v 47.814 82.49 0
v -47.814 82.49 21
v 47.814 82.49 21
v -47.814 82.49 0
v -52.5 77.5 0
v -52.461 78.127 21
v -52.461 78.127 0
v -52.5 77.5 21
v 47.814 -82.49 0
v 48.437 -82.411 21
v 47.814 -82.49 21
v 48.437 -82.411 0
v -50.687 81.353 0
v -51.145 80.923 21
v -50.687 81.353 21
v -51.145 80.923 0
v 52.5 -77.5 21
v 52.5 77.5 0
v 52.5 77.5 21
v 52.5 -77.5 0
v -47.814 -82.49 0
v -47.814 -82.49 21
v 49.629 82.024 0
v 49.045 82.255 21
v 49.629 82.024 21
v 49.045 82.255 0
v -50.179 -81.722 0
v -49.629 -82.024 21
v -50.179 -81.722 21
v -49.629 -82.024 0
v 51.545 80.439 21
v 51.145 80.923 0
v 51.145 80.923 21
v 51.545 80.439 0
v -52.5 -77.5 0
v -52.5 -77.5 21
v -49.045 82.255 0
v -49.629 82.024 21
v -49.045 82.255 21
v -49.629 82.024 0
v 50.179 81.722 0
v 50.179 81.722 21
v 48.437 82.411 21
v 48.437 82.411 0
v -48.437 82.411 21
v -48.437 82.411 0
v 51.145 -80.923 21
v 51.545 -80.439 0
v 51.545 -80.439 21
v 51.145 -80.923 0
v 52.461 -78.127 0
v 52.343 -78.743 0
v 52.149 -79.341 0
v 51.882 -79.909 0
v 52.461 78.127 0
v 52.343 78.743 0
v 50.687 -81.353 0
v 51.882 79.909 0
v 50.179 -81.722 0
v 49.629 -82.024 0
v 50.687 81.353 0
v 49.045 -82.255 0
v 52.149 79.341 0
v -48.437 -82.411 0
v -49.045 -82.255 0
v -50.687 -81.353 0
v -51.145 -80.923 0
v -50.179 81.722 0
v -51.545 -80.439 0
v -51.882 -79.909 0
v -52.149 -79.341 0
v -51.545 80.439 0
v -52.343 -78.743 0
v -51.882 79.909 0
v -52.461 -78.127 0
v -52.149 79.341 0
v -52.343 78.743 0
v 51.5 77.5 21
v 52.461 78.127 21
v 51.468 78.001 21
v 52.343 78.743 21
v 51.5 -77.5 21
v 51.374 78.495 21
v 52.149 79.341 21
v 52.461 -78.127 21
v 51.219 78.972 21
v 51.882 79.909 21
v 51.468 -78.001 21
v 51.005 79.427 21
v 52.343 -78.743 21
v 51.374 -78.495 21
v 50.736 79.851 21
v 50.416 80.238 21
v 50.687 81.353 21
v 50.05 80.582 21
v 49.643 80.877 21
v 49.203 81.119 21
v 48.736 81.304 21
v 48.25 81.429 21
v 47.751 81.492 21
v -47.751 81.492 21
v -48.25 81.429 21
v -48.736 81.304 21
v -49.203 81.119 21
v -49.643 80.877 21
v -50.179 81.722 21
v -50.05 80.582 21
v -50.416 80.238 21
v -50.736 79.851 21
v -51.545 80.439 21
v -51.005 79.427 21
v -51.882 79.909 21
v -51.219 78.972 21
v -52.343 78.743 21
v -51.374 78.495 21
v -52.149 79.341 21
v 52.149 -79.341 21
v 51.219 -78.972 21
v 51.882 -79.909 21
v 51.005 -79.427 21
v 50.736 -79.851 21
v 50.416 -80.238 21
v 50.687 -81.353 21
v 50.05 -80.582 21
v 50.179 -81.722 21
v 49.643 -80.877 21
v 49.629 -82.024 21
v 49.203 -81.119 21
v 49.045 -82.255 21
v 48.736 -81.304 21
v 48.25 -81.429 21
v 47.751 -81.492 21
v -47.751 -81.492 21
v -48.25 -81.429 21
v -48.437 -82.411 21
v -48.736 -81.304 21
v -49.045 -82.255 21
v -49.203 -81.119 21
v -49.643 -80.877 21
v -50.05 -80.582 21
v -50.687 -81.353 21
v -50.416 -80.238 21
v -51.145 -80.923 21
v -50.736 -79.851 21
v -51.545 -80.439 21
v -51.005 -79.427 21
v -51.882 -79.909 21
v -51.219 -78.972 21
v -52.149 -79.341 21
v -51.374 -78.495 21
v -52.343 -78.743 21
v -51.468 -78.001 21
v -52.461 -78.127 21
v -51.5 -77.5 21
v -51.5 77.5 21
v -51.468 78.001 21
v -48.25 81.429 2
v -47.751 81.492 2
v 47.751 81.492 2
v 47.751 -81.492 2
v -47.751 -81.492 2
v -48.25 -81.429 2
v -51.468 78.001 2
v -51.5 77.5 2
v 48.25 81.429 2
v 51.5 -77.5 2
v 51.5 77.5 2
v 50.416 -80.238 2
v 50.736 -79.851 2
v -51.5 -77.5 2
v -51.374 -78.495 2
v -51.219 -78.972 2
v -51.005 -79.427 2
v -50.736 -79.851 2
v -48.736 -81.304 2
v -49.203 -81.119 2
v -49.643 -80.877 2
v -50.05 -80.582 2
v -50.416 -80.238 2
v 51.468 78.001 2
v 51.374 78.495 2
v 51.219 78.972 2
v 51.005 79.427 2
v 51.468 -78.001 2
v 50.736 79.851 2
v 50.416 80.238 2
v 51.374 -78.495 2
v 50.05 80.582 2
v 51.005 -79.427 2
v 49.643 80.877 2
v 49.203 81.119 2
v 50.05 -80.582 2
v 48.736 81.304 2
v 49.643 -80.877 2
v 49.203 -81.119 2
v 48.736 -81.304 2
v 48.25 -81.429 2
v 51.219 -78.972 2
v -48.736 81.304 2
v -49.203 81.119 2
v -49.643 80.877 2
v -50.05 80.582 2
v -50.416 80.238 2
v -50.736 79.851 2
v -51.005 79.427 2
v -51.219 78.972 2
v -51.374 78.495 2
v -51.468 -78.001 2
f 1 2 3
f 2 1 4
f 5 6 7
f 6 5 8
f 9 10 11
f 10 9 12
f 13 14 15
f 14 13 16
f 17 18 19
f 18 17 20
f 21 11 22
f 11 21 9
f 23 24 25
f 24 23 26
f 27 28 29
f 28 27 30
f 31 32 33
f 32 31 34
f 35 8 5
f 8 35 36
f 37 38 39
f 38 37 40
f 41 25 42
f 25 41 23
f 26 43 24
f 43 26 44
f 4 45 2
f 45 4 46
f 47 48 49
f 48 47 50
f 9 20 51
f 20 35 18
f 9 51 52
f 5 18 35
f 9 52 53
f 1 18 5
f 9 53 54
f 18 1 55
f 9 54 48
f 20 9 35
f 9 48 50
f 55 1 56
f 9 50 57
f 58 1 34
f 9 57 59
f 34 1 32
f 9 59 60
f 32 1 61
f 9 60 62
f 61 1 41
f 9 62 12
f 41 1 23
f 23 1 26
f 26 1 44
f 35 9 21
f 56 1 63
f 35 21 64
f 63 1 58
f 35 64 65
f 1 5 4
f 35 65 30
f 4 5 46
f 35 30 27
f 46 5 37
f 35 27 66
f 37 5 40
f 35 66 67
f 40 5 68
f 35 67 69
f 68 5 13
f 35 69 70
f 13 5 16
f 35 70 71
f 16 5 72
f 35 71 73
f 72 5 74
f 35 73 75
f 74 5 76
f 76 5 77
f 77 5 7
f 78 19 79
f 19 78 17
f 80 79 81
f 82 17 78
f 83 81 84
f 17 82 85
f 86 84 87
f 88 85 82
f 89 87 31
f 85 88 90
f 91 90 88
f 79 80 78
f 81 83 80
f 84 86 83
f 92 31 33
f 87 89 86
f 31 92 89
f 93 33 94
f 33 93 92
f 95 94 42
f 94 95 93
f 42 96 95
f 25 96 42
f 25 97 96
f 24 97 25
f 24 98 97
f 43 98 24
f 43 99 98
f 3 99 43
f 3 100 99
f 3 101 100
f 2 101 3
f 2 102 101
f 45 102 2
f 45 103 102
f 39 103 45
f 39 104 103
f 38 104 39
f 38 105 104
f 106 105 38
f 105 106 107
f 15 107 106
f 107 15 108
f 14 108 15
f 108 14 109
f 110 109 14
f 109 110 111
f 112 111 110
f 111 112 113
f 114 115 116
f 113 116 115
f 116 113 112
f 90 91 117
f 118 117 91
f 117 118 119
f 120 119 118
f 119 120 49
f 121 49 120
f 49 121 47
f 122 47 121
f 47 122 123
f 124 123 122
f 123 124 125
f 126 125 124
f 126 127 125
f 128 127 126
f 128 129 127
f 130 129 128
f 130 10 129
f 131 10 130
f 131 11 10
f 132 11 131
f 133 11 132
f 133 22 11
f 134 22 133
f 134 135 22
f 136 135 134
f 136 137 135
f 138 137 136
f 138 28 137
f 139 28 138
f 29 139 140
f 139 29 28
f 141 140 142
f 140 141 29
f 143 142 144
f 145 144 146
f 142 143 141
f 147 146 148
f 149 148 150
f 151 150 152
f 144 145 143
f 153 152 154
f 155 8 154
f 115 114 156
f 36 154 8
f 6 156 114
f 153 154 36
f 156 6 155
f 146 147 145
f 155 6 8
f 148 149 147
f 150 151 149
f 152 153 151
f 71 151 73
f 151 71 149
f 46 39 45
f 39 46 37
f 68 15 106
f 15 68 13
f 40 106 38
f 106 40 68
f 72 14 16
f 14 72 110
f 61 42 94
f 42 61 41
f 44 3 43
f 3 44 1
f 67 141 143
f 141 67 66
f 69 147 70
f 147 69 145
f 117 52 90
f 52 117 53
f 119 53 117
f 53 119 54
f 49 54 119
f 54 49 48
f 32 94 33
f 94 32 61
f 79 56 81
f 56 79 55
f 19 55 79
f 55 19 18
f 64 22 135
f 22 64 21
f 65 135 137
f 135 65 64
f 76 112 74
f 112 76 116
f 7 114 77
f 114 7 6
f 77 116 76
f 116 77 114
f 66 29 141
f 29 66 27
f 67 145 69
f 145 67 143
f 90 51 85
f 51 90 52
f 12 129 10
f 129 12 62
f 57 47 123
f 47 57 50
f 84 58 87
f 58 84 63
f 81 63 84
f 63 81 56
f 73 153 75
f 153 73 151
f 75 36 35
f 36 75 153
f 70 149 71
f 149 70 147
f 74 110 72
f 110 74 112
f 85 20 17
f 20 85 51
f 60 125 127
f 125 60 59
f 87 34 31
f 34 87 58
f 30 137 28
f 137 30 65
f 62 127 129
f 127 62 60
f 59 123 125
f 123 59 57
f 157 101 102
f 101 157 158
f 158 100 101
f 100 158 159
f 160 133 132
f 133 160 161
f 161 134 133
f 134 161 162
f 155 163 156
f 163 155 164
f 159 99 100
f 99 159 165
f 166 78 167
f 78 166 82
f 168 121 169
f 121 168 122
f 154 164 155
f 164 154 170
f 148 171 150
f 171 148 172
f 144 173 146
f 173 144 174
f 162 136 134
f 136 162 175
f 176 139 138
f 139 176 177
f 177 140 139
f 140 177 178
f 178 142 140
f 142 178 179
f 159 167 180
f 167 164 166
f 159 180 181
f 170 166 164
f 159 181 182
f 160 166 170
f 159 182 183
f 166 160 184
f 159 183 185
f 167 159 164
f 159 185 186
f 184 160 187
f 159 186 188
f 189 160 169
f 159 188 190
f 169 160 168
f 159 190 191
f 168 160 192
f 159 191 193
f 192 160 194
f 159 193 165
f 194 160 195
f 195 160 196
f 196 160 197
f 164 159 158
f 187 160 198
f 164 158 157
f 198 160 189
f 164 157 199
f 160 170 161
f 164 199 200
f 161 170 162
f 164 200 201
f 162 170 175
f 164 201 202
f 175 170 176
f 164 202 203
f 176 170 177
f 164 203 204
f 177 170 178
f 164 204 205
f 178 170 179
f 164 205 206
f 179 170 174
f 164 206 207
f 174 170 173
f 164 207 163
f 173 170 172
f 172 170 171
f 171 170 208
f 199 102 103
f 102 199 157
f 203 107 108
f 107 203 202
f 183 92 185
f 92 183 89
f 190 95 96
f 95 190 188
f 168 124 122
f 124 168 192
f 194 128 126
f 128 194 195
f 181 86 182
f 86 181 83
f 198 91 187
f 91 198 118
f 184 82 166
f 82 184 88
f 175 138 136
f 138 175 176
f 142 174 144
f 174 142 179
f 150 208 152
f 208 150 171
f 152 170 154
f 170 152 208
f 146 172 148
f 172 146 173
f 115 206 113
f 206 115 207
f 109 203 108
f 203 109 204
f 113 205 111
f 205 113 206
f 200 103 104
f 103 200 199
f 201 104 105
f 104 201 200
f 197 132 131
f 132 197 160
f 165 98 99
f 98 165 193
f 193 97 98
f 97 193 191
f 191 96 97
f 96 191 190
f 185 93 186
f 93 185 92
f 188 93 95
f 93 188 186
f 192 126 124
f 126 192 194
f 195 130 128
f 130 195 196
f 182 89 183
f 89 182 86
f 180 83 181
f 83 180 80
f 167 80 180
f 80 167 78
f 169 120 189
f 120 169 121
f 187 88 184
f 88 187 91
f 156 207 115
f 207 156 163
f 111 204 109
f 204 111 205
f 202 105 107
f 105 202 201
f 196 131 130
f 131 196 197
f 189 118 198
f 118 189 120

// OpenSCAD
$fn = 50;


difference() {
	union() {
		hull() {
			translate(v = [-47.5000000000, 77.5000000000, 0]) {
				cylinder(h = 21, r = 5);
			}
			translate(v = [47.5000000000, 77.5000000000, 0]) {
				cylinder(h = 21, r = 5);
			}
			translate(v = [-47.5000000000, -77.5000000000, 0]) {
				cylinder(h = 21, r = 5);
			}
			translate(v = [47.5000000000, -77.5000000000, 0]) {
				cylinder(h = 21, r = 5);
			}
		}
	}
	union() {
		translate(v = [0, 0, 2]) {
			hull() {
				translate(v = [-47.5000000000, 77.5000000000, 0]) {
					cylinder(h = 19, r = 4);
				}
				translate(v = [47.5000000000, 77.5000000000, 0]) {
					cylinder(h = 19, r = 4);
				}
				translate(v = [-47.5000000000, -77.5000000000, 0]) {
					cylinder(h = 19, r = 4);
				}
				translate(v = [47.5000000000, -77.5000000000, 0]) {
					cylinder(h = 19, r = 4);
				}
			}
		}
	}
}
